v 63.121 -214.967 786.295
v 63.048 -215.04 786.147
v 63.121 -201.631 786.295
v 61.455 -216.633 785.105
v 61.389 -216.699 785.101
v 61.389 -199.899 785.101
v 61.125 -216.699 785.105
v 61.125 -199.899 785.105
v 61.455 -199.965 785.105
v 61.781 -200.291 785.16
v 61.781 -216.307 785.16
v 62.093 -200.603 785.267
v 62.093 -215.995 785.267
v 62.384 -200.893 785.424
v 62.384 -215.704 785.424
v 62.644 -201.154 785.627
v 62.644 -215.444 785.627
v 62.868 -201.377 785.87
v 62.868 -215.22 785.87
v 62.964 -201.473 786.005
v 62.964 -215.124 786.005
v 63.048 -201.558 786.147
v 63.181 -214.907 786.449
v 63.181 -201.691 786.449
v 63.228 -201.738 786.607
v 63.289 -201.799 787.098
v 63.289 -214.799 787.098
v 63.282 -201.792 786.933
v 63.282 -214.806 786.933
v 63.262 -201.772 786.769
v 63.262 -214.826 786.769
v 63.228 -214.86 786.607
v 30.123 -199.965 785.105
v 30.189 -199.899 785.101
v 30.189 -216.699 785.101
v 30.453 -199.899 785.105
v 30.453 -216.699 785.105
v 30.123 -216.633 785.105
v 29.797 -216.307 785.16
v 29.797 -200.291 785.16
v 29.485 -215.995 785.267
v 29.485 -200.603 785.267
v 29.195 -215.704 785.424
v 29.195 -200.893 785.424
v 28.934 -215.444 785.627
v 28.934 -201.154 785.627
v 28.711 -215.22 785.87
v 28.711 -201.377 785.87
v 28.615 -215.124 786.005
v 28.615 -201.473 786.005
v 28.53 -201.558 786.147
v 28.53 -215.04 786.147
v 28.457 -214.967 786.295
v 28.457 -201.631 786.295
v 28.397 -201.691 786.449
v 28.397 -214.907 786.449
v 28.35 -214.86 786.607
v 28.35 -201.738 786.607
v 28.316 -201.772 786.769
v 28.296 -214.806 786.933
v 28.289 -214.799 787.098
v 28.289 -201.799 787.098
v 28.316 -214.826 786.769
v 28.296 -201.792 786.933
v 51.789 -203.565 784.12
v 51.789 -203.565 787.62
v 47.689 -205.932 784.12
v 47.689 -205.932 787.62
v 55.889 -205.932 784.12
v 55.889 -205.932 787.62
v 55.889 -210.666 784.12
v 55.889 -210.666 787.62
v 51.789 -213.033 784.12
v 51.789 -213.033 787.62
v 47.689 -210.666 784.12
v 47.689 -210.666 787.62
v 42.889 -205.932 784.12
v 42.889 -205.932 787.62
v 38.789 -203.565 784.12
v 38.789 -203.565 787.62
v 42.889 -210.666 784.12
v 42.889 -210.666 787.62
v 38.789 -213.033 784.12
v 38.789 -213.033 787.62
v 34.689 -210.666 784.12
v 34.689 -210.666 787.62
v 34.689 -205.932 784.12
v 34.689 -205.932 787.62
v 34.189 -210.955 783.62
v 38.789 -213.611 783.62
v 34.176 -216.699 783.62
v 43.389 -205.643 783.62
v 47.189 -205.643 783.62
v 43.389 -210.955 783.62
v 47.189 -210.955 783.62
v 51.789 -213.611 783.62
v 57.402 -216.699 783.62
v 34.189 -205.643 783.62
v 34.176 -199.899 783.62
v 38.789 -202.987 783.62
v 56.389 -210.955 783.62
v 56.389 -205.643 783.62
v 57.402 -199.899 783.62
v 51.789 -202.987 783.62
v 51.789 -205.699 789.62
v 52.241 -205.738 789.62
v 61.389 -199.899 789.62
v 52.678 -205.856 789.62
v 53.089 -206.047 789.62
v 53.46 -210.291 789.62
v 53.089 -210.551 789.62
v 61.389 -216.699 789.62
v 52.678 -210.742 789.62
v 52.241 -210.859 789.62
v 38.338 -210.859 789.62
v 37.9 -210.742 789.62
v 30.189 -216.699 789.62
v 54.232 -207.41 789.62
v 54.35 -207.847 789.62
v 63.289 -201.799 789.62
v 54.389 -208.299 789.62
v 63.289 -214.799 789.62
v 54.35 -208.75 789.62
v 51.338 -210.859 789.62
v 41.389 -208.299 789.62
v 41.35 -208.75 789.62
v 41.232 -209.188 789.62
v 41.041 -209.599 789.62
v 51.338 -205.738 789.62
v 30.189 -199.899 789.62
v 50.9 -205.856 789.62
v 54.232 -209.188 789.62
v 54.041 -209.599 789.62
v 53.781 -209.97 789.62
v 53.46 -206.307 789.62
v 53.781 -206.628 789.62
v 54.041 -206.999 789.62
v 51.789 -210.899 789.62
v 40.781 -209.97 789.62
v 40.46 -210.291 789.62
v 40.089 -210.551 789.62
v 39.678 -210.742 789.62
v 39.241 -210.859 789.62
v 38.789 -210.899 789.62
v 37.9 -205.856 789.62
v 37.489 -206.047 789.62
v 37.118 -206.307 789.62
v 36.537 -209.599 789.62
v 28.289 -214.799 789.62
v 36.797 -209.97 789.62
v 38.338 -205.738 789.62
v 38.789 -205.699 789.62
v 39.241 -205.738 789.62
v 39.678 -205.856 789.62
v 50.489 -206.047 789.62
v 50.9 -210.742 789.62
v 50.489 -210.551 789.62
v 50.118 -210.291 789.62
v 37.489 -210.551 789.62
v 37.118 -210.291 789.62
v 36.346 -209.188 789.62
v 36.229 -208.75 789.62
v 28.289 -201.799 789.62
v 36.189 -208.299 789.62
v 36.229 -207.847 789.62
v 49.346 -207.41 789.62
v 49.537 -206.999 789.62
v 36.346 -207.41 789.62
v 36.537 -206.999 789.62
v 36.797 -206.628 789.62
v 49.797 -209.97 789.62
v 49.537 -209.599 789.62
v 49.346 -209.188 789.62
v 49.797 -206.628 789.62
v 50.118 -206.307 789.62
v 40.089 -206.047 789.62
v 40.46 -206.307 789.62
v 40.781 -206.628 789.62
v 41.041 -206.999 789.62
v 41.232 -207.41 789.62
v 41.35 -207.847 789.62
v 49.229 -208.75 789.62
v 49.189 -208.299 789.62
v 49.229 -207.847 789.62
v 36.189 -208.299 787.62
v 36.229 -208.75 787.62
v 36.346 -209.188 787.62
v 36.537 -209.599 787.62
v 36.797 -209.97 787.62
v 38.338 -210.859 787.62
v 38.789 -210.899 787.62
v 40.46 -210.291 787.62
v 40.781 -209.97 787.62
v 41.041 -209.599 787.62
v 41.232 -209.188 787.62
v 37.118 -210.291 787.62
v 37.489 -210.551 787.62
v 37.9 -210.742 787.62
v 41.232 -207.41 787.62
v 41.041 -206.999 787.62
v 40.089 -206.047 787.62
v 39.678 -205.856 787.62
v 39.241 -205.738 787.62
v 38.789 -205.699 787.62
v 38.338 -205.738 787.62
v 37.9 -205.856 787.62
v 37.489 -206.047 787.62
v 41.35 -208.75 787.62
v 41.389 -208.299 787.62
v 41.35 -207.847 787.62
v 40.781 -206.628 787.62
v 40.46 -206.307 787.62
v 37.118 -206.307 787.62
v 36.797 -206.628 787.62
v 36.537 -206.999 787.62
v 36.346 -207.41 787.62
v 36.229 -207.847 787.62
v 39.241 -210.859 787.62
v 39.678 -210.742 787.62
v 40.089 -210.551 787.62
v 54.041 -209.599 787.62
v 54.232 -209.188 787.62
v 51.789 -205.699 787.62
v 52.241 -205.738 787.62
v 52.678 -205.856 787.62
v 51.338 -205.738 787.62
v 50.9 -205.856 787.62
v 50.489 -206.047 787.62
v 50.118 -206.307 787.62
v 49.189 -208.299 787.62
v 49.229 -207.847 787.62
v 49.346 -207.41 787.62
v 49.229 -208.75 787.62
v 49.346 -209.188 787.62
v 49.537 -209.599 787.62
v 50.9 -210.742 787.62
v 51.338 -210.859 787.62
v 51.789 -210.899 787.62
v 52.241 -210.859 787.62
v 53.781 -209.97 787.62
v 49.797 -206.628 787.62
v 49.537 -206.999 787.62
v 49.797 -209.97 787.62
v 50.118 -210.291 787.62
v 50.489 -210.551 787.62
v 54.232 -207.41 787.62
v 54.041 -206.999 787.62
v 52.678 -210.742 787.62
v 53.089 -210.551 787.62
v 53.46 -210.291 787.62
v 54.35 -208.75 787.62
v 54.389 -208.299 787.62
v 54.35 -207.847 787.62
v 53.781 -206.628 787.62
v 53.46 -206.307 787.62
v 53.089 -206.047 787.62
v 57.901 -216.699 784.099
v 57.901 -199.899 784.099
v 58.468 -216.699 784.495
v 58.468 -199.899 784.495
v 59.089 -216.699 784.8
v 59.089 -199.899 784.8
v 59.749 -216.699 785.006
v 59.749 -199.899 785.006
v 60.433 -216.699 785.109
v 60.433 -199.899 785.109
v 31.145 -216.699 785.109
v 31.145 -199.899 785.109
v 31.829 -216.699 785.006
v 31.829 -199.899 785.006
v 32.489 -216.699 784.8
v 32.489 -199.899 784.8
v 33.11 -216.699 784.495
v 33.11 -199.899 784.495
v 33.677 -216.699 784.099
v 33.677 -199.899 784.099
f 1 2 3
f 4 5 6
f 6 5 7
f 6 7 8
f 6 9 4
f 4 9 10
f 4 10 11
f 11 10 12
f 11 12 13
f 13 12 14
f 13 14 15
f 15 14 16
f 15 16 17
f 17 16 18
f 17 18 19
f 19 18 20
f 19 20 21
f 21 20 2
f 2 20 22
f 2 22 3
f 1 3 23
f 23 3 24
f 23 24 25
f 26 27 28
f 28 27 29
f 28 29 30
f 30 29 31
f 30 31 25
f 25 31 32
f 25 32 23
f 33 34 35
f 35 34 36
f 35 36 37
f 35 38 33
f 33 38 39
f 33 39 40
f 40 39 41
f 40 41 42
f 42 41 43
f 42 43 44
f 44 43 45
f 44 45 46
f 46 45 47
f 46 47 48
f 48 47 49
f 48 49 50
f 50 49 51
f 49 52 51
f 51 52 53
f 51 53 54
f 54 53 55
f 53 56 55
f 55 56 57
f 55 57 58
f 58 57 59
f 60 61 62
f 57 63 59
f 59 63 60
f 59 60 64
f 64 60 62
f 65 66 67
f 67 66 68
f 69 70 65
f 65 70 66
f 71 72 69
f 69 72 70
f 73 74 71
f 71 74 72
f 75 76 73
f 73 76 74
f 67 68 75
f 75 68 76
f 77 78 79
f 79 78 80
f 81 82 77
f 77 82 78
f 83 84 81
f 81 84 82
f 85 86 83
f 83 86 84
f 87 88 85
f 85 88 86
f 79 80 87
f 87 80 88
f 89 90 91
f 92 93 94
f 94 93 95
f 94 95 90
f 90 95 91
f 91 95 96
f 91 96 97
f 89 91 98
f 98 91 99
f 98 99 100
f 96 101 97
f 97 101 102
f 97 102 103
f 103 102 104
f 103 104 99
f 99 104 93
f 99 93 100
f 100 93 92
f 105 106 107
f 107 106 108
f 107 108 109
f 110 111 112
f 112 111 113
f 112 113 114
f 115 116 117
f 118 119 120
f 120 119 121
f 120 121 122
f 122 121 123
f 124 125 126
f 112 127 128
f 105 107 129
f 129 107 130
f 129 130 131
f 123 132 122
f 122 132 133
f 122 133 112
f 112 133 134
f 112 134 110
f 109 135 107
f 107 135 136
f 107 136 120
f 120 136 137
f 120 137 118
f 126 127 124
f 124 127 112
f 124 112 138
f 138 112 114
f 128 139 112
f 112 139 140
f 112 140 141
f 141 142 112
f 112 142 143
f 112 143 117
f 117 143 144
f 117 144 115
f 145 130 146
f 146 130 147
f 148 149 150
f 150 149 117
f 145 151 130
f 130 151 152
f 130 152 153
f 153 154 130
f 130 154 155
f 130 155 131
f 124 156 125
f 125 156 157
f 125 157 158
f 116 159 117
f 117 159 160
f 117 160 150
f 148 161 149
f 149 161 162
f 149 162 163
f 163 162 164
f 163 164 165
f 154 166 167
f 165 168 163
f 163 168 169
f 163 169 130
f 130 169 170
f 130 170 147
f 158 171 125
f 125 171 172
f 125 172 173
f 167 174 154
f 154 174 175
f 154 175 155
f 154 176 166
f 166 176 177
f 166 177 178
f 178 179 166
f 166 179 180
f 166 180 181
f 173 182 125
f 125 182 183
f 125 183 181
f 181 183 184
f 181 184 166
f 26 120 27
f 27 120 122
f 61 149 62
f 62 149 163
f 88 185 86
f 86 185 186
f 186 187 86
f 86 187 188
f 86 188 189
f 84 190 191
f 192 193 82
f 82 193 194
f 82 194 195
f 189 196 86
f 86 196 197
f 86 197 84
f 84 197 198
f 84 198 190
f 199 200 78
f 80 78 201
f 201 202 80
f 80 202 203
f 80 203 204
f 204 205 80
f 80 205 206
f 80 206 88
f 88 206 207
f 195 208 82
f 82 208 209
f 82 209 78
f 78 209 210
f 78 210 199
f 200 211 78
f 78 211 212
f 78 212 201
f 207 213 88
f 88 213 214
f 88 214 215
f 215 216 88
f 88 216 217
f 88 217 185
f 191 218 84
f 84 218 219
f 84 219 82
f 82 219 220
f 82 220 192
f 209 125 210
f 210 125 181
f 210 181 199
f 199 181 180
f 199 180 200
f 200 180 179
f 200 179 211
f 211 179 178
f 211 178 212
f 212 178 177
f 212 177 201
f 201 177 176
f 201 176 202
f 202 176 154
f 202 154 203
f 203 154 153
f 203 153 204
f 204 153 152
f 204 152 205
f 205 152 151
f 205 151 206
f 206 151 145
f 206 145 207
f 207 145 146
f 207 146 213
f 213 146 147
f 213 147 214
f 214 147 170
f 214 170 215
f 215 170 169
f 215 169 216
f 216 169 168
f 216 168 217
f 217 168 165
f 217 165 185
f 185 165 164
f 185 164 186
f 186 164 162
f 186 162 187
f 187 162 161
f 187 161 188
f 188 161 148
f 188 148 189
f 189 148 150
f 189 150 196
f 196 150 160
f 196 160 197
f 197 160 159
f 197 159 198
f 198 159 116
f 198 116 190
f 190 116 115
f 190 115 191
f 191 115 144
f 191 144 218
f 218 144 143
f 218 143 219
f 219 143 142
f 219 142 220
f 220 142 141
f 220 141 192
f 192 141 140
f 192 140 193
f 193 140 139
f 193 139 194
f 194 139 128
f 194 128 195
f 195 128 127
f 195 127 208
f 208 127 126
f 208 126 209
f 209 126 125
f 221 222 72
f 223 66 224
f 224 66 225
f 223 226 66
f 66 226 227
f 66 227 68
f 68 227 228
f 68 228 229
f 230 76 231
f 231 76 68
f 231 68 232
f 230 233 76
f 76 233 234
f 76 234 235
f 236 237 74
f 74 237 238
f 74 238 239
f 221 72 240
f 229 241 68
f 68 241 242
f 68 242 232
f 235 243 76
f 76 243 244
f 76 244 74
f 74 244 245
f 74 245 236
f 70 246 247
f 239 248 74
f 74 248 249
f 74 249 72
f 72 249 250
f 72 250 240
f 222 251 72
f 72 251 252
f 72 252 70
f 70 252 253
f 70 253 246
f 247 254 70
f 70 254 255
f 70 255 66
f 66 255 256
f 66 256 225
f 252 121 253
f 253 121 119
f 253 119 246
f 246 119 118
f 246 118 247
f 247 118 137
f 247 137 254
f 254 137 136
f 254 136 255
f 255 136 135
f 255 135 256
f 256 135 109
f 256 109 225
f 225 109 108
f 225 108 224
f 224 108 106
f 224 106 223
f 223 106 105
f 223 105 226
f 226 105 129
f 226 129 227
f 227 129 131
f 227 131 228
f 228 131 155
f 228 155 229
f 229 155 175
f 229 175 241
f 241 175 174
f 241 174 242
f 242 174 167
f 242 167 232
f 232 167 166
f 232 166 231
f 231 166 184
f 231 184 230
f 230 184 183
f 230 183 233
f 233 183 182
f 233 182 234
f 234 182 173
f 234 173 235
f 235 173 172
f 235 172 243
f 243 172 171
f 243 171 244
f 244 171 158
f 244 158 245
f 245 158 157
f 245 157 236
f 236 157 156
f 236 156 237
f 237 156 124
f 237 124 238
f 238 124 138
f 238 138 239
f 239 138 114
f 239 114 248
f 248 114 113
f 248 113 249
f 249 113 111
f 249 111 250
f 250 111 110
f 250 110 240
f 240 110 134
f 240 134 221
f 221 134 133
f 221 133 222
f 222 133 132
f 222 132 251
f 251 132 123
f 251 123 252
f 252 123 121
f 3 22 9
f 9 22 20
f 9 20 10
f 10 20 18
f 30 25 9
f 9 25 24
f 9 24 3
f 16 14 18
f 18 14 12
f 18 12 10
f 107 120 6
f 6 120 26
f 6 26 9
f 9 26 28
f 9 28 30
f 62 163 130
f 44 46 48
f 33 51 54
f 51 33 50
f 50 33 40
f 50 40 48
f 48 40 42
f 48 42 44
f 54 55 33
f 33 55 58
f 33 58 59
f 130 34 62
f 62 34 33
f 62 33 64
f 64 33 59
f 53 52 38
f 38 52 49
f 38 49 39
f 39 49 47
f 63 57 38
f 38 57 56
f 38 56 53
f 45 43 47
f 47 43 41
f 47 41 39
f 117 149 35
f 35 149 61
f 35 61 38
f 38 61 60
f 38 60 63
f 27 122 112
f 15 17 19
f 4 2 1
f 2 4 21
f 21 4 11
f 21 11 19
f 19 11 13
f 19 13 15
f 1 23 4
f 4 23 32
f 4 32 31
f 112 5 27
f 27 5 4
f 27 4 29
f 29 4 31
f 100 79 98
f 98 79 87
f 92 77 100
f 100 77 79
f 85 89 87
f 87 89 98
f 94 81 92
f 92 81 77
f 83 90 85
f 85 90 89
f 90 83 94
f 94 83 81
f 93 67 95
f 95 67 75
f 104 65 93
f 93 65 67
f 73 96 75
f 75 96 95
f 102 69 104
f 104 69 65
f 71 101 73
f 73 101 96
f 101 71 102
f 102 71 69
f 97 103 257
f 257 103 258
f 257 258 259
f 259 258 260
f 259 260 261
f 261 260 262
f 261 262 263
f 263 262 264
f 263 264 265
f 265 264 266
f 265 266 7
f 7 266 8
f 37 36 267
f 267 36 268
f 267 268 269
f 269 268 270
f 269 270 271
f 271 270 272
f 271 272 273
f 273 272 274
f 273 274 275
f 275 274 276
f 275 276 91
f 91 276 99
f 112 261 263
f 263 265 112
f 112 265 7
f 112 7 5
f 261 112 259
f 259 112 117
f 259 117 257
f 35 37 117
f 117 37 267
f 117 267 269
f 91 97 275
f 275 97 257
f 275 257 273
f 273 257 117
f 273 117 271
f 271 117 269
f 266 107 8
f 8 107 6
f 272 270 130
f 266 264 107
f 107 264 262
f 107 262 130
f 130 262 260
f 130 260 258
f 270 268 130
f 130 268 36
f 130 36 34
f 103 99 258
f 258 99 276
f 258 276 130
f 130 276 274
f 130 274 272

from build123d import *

# Parameters (mm, degrees)
SKETCH1_W           = 35
SKETCH1_H           = 21
BOSS_EXTRUDE1_DEPTH = 6
SKETCH2_W           = 35
SKETCH2_H           = 21
SKETCH2_R           = 2.6
BOSS_EXTRUDE2_DEPTH = 2
CHAMFER1_SIZE       = 4
CHAMFER2_SIZE       = 0.5
SKETCH3_R           = 4.499999999
SKETCH3_R_2         = 4.500000001
CUT_EXTRUDE1_DEPTH  = 49.5
FILLET1_R           = 2
FILLET2_R           = 2
SKETCH5_W           = 39.219322143
SKETCH5_H           = 6.192524549
SKETCH5_W_2         = 37.895134504
SKETCH5_H_2         = 8.100912618
CUT_EXTRUDE2_DEPTH  = 10


with BuildPart() as part:
    # Sketch1 → Boss-Extrude1 (new body)
    with BuildSketch(Plane(origin=(0, 0, 789.620141885), x_dir=(-1, 0, 0), z_dir=(0, 0, -1))):
        with Locations((-45.789156386, -208.298939869)):
            Rectangle(SKETCH1_W, SKETCH1_H)
        Polygon((-51.789156386, -203.564667662), (-55.889156386, -205.931803766), (-55.889156386, -210.666075973), (-51.789156386, -213.033212077), (-47.689156386, -210.666075973), (-47.689156386, -205.931803766), align=None, mode=Mode.SUBTRACT)
        Polygon((-42.889156386, -205.931803766), (-42.889156386, -210.666075973), (-38.789156386, -213.033212077), (-34.689156386, -210.666075973), (-34.689156386, -205.931803766), (-38.789156386, -203.564667662), align=None, mode=Mode.SUBTRACT)
    extrude(amount=BOSS_EXTRUDE1_DEPTH)

    # Sketch2 → Boss-Extrude2 (add)
    with BuildSketch(Plane.XY.offset(789.620141885)):
        with Locations((45.789156386, -208.298939869)):
            Rectangle(SKETCH2_W, SKETCH2_H)
        with Locations((38.789156386, -208.298939869)):
            Circle(SKETCH2_R, mode=Mode.SUBTRACT)
        with Locations((51.789156386, -208.298939869)):
            Circle(SKETCH2_R, mode=Mode.SUBTRACT)
    extrude(amount=-BOSS_EXTRUDE2_DEPTH)

    # Chamfer1
    chamfer1_edges = [part.edges().sort_by_distance(p)[0] for p in [
        (63.289156386, -197.798939869, 786.620141885),
        (28.289156386, -197.798939869, 786.620141885),
        (28.289156386, -218.798939869, 786.620141885),
        (63.289156386, -218.798939869, 786.620141885),
    ]]
    chamfer(chamfer1_edges, length=CHAMFER1_SIZE)

    # Chamfer2
    chamfer2_edges = [part.edges().sort_by_distance(p)[0] for p in [
        (45.789156386, -197.798939869, 783.620141885),
        (45.789156386, -218.798939869, 783.620141885),
        (28.289156386, -208.298939869, 783.620141885),
        (61.289156386, -216.798939869, 783.620141885),
        (30.289156386, -216.798939869, 783.620141885),
        (30.289156386, -199.798939869, 783.620141885),
        (61.289156386, -199.798939869, 783.620141885),
        (49.739156386, -204.748235714, 783.620141885),
        (53.839156386, -204.748235714, 783.620141885),
        (55.889156386, -208.298939869, 783.620141885),
        (53.839156386, -211.849644025, 783.620141885),
        (49.739156386, -211.849644025, 783.620141885),
        (47.689156386, -208.298939869, 783.620141885),
        (40.839156386, -204.748235714, 783.620141885),
        (42.889156386, -208.298939869, 783.620141885),
        (40.839156386, -211.849644025, 783.620141885),
        (36.739156386, -211.849644025, 783.620141885),
        (34.689156386, -208.298939869, 783.620141885),
        (36.739156386, -204.748235714, 783.620141885),
        (63.289156386, -208.298939869, 783.620141885),
    ]]
    chamfer(chamfer2_edges, length=CHAMFER2_SIZE)

    # Sketch3 → Cut-Extrude1 (cut)
    with BuildSketch(Plane(origin=(0, -197.798939869, 0), x_dir=(1, 0, 0), z_dir=(0, 1, 0))):
        with Locations((30.822197264, -780.620141885)):
            Circle(SKETCH3_R)
        with Locations((60.756115509, -780.620141885)):
            Circle(SKETCH3_R_2)
    extrude(amount=-CUT_EXTRUDE1_DEPTH, mode=Mode.SUBTRACT)

    # Fillet1
    fillet1_edges = [part.edges().sort_by_distance(p)[0] for p in [
        (28.289156386, -208.298939869, 784.339510636),
    ]]
    fillet(fillet1_edges, radius=FILLET1_R)

    # Fillet2
    fillet2_edges = [part.edges().sort_by_distance(p)[0] for p in [
        (63.289156386, -208.298939869, 784.339510637),
    ]]
    fillet(fillet2_edges, radius=FILLET2_R)

    # Sketch5 → Cut-Extrude2 (cut)
    with BuildSketch(Plane(origin=(0, 0, 783.620141885), x_dir=(-1, 0, 0), z_dir=(0, 0, -1))):
        with Locations((-46.0812566, -196.802677595)):
            Rectangle(SKETCH5_W, SKETCH5_H)
        with Locations((-45.419162781, -220.749396178)):
            Rectangle(SKETCH5_W_2, SKETCH5_H_2)
    extrude(amount=-CUT_EXTRUDE2_DEPTH, mode=Mode.SUBTRACT)


solid = part.part
